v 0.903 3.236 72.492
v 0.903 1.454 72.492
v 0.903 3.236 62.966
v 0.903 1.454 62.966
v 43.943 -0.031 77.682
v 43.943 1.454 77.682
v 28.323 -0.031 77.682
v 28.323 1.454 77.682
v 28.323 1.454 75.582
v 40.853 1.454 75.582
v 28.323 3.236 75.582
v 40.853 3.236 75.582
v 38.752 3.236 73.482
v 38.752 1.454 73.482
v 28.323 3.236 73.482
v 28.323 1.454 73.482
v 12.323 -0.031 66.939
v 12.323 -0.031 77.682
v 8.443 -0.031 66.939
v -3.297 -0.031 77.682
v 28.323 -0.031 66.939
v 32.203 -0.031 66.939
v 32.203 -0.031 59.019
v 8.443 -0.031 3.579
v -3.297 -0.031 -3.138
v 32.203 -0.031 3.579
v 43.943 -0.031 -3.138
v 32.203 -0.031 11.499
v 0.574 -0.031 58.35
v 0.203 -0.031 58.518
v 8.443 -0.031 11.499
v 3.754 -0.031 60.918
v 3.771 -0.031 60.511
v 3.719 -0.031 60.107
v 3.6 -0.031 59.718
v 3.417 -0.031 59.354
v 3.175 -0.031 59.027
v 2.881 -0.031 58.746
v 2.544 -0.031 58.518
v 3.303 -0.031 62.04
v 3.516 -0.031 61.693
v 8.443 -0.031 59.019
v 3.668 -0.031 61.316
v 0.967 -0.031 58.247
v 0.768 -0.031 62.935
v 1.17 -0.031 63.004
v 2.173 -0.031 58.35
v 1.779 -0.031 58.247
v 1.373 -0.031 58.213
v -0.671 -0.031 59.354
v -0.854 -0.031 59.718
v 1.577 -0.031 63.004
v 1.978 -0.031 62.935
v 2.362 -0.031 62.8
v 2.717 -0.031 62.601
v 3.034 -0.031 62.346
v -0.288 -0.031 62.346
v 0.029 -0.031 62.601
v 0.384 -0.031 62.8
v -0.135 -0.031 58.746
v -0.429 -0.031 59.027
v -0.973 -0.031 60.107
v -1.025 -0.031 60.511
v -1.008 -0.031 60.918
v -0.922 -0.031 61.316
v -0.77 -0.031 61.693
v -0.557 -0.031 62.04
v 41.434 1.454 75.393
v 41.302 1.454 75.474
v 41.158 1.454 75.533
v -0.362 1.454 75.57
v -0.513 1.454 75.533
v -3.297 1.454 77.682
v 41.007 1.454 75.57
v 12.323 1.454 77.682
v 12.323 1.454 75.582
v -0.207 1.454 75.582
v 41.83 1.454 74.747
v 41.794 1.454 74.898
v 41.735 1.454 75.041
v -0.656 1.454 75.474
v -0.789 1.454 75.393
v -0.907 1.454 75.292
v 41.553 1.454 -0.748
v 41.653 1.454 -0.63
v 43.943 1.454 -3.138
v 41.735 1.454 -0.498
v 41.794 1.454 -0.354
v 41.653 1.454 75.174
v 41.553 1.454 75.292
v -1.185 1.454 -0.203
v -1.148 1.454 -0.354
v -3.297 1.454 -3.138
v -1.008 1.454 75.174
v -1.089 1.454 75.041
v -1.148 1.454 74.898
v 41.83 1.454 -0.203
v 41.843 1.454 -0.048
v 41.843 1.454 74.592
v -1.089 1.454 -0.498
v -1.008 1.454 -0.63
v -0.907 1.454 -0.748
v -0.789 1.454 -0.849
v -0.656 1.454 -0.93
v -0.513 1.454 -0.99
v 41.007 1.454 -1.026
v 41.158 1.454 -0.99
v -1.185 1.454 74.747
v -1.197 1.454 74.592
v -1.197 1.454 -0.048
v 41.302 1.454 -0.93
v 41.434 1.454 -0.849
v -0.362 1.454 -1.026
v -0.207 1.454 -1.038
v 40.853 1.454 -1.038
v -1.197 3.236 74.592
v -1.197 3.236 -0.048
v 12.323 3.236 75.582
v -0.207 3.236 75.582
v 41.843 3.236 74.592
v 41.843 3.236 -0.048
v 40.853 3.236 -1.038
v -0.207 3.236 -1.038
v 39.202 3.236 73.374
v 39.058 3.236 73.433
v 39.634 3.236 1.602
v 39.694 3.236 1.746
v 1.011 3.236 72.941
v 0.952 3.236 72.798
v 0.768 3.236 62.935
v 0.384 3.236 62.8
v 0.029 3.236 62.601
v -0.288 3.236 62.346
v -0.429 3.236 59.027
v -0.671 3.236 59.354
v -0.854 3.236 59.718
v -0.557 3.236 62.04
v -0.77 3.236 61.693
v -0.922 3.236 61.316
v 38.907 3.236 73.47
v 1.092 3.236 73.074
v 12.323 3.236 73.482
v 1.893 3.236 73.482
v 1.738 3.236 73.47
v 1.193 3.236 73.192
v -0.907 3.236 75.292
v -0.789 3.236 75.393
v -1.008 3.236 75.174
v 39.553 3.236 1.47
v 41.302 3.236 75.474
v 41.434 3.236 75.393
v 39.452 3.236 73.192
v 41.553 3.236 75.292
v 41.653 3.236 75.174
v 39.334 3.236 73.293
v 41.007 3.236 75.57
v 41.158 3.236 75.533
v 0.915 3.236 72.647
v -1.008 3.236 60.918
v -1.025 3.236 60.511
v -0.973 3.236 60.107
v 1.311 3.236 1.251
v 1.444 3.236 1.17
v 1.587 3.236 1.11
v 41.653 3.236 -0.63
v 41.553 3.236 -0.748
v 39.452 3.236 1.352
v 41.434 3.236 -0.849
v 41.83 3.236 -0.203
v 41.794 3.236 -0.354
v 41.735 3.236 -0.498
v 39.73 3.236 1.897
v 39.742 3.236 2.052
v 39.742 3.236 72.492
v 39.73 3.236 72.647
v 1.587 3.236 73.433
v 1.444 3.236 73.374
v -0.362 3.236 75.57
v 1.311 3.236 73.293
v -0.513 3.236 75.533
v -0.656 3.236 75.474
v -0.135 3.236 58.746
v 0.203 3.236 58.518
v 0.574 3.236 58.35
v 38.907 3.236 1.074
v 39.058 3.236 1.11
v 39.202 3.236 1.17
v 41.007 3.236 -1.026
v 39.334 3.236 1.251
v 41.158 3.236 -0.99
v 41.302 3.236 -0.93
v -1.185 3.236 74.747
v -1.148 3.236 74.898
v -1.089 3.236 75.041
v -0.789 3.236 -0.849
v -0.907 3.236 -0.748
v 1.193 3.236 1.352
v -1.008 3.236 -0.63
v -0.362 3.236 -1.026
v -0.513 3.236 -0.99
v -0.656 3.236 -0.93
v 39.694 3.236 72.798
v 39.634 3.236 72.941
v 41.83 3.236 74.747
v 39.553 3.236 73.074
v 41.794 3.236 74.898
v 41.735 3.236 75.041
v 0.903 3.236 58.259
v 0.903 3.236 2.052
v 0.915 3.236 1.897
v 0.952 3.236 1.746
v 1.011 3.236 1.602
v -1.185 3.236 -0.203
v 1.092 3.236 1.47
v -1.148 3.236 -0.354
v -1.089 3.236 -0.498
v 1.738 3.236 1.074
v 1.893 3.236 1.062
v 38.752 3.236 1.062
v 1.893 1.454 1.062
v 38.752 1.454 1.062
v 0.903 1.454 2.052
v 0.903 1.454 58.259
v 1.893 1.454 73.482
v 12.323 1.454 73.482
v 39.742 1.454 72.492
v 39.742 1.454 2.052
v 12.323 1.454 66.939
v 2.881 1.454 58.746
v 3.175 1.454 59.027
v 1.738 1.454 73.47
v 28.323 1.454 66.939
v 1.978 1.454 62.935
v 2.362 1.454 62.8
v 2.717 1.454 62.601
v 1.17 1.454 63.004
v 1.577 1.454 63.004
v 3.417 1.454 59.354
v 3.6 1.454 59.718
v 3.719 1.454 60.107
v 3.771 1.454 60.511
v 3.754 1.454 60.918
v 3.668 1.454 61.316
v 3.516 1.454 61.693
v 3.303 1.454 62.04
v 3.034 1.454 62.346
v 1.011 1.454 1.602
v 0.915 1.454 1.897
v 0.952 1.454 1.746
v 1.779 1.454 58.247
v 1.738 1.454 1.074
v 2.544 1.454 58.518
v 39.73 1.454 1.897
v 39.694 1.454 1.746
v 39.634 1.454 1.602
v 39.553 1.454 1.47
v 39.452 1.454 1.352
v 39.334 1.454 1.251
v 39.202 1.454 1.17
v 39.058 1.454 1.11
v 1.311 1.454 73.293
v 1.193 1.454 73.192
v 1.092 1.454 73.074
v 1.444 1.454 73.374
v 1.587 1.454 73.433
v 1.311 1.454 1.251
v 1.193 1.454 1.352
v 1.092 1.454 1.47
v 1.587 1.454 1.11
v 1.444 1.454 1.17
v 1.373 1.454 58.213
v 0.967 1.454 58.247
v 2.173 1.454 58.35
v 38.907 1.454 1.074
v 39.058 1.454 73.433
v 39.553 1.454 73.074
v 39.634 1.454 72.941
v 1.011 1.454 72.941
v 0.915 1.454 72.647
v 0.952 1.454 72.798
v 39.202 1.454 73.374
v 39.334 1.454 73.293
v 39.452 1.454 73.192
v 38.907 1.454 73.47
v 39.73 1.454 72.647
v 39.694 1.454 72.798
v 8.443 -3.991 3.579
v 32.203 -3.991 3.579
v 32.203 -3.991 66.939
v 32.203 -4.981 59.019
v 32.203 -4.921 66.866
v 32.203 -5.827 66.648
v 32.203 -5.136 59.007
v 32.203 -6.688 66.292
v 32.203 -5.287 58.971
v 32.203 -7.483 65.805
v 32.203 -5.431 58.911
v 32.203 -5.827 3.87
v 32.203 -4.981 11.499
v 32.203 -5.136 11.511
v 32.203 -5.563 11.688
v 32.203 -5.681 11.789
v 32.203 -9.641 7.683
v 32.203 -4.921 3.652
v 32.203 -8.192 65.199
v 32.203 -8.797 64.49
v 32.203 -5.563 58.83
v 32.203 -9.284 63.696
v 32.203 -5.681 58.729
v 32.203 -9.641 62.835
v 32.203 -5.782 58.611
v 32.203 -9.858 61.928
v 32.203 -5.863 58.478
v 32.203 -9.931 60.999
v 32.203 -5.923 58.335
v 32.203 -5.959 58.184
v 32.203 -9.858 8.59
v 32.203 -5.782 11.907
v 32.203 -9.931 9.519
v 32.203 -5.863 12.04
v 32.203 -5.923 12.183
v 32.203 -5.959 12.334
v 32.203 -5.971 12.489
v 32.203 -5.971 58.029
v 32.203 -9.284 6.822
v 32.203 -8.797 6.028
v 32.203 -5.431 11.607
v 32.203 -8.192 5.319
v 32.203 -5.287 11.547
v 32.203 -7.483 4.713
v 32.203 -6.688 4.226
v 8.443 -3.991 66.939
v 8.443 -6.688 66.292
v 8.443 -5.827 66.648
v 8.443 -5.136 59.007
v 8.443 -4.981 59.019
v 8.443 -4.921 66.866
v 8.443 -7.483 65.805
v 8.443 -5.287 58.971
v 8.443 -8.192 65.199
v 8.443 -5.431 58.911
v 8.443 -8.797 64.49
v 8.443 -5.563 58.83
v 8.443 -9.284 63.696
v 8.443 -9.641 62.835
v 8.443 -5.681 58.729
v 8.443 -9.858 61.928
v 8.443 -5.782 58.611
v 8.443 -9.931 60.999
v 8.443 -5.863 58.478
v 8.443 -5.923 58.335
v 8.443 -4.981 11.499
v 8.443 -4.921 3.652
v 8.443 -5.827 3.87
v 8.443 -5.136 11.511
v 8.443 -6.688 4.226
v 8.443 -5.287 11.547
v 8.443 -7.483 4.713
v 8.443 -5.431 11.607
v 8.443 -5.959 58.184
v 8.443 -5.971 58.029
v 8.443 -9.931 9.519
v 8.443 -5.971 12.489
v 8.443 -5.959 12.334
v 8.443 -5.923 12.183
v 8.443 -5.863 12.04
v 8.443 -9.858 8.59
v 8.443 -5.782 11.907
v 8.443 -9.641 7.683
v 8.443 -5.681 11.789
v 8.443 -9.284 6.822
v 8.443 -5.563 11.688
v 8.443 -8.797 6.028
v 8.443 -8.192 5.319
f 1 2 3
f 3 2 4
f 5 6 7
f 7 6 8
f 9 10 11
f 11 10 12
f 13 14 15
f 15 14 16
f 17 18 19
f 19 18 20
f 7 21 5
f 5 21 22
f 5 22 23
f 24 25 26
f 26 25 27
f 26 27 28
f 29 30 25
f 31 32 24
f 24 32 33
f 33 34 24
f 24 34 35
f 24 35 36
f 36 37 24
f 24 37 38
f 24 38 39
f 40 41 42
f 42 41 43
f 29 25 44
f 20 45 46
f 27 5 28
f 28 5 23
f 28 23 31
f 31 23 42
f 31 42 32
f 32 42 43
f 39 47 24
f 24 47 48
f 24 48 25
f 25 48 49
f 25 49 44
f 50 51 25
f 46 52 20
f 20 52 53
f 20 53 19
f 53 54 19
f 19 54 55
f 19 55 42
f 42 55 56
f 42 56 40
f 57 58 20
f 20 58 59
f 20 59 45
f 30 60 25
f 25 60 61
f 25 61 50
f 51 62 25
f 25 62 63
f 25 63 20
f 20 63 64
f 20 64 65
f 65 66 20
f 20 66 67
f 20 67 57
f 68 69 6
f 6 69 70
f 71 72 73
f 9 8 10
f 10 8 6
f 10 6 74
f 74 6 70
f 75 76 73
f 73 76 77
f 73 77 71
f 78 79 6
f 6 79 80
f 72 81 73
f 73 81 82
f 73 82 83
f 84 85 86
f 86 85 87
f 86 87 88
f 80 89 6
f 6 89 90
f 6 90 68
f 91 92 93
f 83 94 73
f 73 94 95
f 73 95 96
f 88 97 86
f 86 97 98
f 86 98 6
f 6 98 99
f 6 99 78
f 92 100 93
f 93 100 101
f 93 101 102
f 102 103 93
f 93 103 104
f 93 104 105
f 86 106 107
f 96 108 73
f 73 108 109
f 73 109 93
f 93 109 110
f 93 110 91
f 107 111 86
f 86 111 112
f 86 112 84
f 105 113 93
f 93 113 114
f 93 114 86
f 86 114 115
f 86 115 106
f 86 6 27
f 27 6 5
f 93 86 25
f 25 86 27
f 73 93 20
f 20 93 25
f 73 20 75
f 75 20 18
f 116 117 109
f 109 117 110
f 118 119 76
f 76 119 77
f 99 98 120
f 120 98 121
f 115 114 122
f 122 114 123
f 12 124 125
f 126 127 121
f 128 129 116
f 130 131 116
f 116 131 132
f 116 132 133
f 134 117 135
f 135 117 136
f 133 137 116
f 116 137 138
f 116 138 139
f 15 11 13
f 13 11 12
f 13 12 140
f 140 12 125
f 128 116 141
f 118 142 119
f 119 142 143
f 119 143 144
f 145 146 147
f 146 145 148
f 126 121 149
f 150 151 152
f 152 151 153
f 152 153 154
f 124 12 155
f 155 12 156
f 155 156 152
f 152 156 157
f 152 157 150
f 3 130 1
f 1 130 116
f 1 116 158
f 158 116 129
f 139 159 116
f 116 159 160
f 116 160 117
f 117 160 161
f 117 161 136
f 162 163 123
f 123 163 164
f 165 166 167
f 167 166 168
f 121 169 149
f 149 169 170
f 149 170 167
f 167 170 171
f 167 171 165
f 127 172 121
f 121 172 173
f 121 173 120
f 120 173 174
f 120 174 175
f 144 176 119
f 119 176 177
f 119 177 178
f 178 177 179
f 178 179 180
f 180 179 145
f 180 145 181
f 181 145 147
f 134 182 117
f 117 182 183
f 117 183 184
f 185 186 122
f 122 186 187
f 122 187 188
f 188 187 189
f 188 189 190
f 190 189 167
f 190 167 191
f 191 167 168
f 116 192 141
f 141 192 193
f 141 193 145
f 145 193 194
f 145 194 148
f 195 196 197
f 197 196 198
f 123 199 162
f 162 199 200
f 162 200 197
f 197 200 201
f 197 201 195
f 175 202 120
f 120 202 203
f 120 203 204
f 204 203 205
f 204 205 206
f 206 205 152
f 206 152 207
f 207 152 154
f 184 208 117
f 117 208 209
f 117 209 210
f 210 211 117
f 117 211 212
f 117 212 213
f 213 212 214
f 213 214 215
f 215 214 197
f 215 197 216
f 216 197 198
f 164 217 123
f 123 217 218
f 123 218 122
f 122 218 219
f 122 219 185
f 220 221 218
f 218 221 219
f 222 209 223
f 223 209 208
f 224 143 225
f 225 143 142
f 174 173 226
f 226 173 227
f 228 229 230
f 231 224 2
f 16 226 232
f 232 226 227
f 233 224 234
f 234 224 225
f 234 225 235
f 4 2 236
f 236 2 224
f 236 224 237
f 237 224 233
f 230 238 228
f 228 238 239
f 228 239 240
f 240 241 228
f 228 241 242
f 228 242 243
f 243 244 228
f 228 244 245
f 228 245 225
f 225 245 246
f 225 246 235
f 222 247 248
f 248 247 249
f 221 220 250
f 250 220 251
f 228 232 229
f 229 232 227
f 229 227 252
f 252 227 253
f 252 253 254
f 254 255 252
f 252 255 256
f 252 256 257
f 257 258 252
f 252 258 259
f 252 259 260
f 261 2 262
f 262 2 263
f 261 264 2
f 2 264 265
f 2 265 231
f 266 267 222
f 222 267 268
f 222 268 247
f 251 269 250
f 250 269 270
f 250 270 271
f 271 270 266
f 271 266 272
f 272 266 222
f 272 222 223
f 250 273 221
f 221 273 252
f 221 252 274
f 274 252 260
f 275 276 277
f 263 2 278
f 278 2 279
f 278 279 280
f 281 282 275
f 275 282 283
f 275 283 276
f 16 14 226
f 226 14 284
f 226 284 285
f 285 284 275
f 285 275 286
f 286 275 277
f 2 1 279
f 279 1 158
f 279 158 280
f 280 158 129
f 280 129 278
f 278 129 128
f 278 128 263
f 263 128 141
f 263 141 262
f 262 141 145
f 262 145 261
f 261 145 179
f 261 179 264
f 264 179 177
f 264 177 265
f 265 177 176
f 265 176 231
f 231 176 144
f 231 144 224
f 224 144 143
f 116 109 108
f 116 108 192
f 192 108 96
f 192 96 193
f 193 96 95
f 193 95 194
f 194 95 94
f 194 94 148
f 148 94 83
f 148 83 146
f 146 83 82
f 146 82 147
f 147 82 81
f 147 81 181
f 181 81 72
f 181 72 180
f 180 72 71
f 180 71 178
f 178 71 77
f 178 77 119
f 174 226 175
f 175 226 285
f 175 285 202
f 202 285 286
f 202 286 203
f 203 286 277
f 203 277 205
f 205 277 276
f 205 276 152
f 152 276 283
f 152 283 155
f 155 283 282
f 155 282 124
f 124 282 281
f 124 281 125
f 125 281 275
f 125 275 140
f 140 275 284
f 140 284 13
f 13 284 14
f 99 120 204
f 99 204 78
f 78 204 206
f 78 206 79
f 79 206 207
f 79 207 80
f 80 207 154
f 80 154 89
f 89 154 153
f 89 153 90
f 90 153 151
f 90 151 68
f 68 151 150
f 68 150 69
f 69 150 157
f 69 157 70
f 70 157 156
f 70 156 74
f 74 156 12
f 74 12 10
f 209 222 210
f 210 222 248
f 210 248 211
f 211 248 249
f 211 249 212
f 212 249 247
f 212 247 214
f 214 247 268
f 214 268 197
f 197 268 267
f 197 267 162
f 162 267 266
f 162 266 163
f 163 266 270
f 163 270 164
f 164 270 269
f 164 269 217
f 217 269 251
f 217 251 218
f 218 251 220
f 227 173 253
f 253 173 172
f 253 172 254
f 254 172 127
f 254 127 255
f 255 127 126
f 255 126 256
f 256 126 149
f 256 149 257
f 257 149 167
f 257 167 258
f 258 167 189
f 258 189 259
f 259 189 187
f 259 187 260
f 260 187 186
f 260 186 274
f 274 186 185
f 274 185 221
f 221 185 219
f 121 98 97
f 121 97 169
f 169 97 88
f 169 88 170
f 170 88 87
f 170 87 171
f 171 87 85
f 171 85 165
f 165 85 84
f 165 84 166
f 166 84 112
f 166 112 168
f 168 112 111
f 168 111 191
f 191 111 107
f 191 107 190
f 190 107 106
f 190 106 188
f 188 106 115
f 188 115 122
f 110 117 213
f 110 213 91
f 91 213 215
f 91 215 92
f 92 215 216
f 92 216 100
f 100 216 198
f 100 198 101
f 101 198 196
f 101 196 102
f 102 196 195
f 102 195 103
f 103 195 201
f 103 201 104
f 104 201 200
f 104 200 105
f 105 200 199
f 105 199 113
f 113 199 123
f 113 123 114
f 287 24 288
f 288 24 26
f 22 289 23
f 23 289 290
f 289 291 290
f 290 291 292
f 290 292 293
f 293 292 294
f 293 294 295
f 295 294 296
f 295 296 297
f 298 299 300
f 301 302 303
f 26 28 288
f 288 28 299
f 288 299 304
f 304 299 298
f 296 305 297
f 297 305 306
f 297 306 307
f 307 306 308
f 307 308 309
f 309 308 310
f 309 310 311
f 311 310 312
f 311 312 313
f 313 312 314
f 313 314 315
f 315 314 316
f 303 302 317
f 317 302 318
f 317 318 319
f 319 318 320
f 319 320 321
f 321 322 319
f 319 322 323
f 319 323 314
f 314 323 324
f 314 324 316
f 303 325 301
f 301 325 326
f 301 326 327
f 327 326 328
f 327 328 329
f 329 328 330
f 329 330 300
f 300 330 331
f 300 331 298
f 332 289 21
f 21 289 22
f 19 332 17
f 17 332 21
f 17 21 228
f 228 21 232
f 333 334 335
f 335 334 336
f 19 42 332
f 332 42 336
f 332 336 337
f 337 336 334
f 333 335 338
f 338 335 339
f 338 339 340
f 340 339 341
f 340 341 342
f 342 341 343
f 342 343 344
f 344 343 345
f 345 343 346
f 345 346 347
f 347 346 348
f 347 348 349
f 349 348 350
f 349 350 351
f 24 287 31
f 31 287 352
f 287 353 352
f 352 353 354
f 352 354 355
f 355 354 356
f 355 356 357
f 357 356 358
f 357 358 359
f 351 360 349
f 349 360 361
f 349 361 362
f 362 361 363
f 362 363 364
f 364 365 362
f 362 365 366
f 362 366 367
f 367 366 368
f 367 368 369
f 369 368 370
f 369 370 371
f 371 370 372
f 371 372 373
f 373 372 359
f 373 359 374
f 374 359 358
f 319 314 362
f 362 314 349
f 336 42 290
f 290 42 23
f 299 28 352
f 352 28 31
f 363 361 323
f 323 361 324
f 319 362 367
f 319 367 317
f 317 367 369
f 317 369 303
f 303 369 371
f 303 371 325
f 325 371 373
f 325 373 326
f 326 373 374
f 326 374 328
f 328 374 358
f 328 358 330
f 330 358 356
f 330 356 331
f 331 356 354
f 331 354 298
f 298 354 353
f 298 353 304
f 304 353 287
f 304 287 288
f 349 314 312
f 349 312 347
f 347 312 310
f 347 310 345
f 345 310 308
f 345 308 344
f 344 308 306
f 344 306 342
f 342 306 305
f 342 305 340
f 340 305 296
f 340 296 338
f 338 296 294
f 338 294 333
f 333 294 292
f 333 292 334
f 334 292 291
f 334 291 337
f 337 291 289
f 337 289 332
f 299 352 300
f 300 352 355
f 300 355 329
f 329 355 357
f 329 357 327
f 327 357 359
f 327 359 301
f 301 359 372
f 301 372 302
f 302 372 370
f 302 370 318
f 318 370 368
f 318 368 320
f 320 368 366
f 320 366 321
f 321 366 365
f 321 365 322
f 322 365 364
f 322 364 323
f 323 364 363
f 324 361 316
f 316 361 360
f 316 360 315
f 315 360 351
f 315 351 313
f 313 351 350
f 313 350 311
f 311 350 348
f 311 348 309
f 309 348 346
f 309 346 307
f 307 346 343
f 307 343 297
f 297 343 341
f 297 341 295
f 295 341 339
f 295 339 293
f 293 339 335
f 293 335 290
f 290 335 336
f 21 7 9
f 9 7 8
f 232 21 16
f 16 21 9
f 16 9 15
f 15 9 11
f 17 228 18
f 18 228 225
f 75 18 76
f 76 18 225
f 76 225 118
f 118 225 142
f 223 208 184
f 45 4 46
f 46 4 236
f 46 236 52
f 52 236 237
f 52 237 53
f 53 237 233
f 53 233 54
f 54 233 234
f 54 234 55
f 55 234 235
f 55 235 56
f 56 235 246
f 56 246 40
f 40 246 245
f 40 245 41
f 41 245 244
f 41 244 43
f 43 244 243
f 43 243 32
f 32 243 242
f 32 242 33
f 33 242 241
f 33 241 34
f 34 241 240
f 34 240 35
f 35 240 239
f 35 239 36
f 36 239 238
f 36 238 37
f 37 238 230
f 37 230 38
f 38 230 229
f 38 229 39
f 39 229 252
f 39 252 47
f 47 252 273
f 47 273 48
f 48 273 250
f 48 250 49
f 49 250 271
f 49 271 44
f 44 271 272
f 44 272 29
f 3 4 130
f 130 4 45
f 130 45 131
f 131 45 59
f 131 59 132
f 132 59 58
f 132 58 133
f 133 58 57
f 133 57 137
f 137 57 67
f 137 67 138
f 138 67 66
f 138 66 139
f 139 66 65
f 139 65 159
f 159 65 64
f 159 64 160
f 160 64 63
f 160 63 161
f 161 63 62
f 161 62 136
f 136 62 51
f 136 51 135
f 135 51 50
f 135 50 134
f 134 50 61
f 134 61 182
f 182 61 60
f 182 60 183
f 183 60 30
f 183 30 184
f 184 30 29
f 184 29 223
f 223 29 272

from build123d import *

# Parameters (mm, degrees)
PCB_DIMENSIONS_W    = 47.716732244
PCB_DIMENSIONS_H    = 81.636732244
BOSS_EXTRUDE3_DEPTH = 1.5
SKETCH5_W           = 43.474091557
SKETCH5_H           = 77.394091557
SKETCH5_W_2         = 39.23145087
SKETCH5_H_2         = 73.15145087
BOSS_EXTRUDE4_DEPTH = 1.8
FILLET1_R           = 1
SKETCH6_W           = 12
SKETCH6_H           = 29.966906412
SKETCH6_H_2         = 34.033093588
BOSS_EXTRUDE5_DEPTH = 10
SKETCH7_W           = 48
SKETCH7_H           = 6
CUT_EXTRUDE1_DEPTH  = 24
FILLET2_R           = 6
FILLET3_R           = 1
SCALE1_SCALE        = 0.99
CUT_EXTRUDE2_DEPTH  = 10
SKETCH9_R           = 2.4
CUT_EXTRUDE3_DEPTH  = 10


with BuildPart() as part:
    # PCB Dimensions → Boss-Extrude3 (new body)
    with BuildSketch(Plane(origin=(0, 0, 0), x_dir=(1, 0, 0), z_dir=(0, 1, 0))):
        with Locations((20.322832216, -37.282832216)):
            Rectangle(PCB_DIMENSIONS_W, PCB_DIMENSIONS_H)
    extrude(amount=BOSS_EXTRUDE3_DEPTH)

    # Sketch5 → Boss-Extrude4 (add)
    with BuildSketch(Plane(origin=(0, 1.5, 0), x_dir=(1, 0, 0), z_dir=(0, 1, 0))):
        with Locations((20.322832217, -37.282832217)):
            Rectangle(SKETCH5_W, SKETCH5_H)
        with Locations((20.322832216, -37.282832216)):
            Rectangle(SKETCH5_W_2, SKETCH5_H_2, mode=Mode.SUBTRACT)
    extrude(amount=BOSS_EXTRUDE4_DEPTH)

    # Fillet1
    fillet1_edges = [part.edges().sort_by_distance(p)[0] for p in [
        (-1.414213562, 2.4, -1.414213562),
        (-1.414213562, 2.4, 75.979877995),
        (42.059877995, 2.4, 75.979877995),
        (42.059877995, 2.4, -1.414213562),
        (0.707106781, 2.4, 0.707106781),
        (0.707106781, 2.4, 73.858557651),
        (39.938557651, 2.4, 73.858557651),
        (39.938557651, 2.4, 0.707106781),
    ]]
    fillet(fillet1_edges, radius=FILLET1_R)

    # Sketch6 → Boss-Extrude5 (add)
    with BuildSketch(Plane.XZ):
        with Locations((14.322832216, 52.266285422)):
            Rectangle(SKETCH6_W, SKETCH6_H)
        with Locations((26.322832216, 52.266285422)):
            Rectangle(SKETCH6_W, SKETCH6_H)
        with Locations((14.322832216, 20.266285422)):
            Rectangle(SKETCH6_W, SKETCH6_H_2)
        with Locations((26.322832216, 20.266285422)):
            Rectangle(SKETCH6_W, SKETCH6_H_2)
    extrude(amount=BOSS_EXTRUDE5_DEPTH)

    # Sketch7 → Cut-Extrude1 (cut)
    with BuildSketch(Plane(origin=(32.322832216, 0, 0), x_dir=(0, 0, -1), z_dir=(1, 0, 0))):
        with Locations((-35.249738628, -3)):
            Rectangle(SKETCH7_W, SKETCH7_H)
    extrude(amount=-CUT_EXTRUDE1_DEPTH, mode=Mode.SUBTRACT)

    # Fillet2
    fillet2_edges = [part.edges().sort_by_distance(p)[0] for p in [
        (20.322832216, -10, 67.249738628),
        (20.322832216, -10, 3.249738628),
    ]]
    fillet(fillet2_edges, radius=FILLET2_R)

    # Fillet3
    fillet3_edges = [part.edges().sort_by_distance(p)[0] for p in [
        (20.322832216, -6, 59.249738628),
        (20.322832216, -6, 11.249738628),
    ]]
    fillet(fillet3_edges, radius=FILLET3_R)


with BuildPart() as part_1:
    # Scale1: scaled about (20.322832216, -3.130115188, 36.173441116)
    add(part.part.scale(SCALE1_SCALE).moved(Location((0.203228322, -0.031301152, 0.361734411))))

    # Sketch8 → Cut-Extrude2 (cut)
    with BuildSketch(Plane.XZ.offset(0.031301152)):
        Polygon((20.322832216, 77.681920766), (12.322832216, 77.681920766), (12.322832216, 66.938975653), (28.322832216, 66.938975653), (28.322832216, 77.681920766), align=None)
    extrude(amount=-CUT_EXTRUDE2_DEPTH, mode=Mode.SUBTRACT)

    # Sketch9 → Cut-Extrude3 (cut)
    with BuildSketch(Plane.XZ.offset(0.031301152)):
        with Locations((1.373049755, 60.612830152)):
            Circle(SKETCH9_R)
    extrude(amount=-CUT_EXTRUDE3_DEPTH, mode=Mode.SUBTRACT)


solid = part_1.part
